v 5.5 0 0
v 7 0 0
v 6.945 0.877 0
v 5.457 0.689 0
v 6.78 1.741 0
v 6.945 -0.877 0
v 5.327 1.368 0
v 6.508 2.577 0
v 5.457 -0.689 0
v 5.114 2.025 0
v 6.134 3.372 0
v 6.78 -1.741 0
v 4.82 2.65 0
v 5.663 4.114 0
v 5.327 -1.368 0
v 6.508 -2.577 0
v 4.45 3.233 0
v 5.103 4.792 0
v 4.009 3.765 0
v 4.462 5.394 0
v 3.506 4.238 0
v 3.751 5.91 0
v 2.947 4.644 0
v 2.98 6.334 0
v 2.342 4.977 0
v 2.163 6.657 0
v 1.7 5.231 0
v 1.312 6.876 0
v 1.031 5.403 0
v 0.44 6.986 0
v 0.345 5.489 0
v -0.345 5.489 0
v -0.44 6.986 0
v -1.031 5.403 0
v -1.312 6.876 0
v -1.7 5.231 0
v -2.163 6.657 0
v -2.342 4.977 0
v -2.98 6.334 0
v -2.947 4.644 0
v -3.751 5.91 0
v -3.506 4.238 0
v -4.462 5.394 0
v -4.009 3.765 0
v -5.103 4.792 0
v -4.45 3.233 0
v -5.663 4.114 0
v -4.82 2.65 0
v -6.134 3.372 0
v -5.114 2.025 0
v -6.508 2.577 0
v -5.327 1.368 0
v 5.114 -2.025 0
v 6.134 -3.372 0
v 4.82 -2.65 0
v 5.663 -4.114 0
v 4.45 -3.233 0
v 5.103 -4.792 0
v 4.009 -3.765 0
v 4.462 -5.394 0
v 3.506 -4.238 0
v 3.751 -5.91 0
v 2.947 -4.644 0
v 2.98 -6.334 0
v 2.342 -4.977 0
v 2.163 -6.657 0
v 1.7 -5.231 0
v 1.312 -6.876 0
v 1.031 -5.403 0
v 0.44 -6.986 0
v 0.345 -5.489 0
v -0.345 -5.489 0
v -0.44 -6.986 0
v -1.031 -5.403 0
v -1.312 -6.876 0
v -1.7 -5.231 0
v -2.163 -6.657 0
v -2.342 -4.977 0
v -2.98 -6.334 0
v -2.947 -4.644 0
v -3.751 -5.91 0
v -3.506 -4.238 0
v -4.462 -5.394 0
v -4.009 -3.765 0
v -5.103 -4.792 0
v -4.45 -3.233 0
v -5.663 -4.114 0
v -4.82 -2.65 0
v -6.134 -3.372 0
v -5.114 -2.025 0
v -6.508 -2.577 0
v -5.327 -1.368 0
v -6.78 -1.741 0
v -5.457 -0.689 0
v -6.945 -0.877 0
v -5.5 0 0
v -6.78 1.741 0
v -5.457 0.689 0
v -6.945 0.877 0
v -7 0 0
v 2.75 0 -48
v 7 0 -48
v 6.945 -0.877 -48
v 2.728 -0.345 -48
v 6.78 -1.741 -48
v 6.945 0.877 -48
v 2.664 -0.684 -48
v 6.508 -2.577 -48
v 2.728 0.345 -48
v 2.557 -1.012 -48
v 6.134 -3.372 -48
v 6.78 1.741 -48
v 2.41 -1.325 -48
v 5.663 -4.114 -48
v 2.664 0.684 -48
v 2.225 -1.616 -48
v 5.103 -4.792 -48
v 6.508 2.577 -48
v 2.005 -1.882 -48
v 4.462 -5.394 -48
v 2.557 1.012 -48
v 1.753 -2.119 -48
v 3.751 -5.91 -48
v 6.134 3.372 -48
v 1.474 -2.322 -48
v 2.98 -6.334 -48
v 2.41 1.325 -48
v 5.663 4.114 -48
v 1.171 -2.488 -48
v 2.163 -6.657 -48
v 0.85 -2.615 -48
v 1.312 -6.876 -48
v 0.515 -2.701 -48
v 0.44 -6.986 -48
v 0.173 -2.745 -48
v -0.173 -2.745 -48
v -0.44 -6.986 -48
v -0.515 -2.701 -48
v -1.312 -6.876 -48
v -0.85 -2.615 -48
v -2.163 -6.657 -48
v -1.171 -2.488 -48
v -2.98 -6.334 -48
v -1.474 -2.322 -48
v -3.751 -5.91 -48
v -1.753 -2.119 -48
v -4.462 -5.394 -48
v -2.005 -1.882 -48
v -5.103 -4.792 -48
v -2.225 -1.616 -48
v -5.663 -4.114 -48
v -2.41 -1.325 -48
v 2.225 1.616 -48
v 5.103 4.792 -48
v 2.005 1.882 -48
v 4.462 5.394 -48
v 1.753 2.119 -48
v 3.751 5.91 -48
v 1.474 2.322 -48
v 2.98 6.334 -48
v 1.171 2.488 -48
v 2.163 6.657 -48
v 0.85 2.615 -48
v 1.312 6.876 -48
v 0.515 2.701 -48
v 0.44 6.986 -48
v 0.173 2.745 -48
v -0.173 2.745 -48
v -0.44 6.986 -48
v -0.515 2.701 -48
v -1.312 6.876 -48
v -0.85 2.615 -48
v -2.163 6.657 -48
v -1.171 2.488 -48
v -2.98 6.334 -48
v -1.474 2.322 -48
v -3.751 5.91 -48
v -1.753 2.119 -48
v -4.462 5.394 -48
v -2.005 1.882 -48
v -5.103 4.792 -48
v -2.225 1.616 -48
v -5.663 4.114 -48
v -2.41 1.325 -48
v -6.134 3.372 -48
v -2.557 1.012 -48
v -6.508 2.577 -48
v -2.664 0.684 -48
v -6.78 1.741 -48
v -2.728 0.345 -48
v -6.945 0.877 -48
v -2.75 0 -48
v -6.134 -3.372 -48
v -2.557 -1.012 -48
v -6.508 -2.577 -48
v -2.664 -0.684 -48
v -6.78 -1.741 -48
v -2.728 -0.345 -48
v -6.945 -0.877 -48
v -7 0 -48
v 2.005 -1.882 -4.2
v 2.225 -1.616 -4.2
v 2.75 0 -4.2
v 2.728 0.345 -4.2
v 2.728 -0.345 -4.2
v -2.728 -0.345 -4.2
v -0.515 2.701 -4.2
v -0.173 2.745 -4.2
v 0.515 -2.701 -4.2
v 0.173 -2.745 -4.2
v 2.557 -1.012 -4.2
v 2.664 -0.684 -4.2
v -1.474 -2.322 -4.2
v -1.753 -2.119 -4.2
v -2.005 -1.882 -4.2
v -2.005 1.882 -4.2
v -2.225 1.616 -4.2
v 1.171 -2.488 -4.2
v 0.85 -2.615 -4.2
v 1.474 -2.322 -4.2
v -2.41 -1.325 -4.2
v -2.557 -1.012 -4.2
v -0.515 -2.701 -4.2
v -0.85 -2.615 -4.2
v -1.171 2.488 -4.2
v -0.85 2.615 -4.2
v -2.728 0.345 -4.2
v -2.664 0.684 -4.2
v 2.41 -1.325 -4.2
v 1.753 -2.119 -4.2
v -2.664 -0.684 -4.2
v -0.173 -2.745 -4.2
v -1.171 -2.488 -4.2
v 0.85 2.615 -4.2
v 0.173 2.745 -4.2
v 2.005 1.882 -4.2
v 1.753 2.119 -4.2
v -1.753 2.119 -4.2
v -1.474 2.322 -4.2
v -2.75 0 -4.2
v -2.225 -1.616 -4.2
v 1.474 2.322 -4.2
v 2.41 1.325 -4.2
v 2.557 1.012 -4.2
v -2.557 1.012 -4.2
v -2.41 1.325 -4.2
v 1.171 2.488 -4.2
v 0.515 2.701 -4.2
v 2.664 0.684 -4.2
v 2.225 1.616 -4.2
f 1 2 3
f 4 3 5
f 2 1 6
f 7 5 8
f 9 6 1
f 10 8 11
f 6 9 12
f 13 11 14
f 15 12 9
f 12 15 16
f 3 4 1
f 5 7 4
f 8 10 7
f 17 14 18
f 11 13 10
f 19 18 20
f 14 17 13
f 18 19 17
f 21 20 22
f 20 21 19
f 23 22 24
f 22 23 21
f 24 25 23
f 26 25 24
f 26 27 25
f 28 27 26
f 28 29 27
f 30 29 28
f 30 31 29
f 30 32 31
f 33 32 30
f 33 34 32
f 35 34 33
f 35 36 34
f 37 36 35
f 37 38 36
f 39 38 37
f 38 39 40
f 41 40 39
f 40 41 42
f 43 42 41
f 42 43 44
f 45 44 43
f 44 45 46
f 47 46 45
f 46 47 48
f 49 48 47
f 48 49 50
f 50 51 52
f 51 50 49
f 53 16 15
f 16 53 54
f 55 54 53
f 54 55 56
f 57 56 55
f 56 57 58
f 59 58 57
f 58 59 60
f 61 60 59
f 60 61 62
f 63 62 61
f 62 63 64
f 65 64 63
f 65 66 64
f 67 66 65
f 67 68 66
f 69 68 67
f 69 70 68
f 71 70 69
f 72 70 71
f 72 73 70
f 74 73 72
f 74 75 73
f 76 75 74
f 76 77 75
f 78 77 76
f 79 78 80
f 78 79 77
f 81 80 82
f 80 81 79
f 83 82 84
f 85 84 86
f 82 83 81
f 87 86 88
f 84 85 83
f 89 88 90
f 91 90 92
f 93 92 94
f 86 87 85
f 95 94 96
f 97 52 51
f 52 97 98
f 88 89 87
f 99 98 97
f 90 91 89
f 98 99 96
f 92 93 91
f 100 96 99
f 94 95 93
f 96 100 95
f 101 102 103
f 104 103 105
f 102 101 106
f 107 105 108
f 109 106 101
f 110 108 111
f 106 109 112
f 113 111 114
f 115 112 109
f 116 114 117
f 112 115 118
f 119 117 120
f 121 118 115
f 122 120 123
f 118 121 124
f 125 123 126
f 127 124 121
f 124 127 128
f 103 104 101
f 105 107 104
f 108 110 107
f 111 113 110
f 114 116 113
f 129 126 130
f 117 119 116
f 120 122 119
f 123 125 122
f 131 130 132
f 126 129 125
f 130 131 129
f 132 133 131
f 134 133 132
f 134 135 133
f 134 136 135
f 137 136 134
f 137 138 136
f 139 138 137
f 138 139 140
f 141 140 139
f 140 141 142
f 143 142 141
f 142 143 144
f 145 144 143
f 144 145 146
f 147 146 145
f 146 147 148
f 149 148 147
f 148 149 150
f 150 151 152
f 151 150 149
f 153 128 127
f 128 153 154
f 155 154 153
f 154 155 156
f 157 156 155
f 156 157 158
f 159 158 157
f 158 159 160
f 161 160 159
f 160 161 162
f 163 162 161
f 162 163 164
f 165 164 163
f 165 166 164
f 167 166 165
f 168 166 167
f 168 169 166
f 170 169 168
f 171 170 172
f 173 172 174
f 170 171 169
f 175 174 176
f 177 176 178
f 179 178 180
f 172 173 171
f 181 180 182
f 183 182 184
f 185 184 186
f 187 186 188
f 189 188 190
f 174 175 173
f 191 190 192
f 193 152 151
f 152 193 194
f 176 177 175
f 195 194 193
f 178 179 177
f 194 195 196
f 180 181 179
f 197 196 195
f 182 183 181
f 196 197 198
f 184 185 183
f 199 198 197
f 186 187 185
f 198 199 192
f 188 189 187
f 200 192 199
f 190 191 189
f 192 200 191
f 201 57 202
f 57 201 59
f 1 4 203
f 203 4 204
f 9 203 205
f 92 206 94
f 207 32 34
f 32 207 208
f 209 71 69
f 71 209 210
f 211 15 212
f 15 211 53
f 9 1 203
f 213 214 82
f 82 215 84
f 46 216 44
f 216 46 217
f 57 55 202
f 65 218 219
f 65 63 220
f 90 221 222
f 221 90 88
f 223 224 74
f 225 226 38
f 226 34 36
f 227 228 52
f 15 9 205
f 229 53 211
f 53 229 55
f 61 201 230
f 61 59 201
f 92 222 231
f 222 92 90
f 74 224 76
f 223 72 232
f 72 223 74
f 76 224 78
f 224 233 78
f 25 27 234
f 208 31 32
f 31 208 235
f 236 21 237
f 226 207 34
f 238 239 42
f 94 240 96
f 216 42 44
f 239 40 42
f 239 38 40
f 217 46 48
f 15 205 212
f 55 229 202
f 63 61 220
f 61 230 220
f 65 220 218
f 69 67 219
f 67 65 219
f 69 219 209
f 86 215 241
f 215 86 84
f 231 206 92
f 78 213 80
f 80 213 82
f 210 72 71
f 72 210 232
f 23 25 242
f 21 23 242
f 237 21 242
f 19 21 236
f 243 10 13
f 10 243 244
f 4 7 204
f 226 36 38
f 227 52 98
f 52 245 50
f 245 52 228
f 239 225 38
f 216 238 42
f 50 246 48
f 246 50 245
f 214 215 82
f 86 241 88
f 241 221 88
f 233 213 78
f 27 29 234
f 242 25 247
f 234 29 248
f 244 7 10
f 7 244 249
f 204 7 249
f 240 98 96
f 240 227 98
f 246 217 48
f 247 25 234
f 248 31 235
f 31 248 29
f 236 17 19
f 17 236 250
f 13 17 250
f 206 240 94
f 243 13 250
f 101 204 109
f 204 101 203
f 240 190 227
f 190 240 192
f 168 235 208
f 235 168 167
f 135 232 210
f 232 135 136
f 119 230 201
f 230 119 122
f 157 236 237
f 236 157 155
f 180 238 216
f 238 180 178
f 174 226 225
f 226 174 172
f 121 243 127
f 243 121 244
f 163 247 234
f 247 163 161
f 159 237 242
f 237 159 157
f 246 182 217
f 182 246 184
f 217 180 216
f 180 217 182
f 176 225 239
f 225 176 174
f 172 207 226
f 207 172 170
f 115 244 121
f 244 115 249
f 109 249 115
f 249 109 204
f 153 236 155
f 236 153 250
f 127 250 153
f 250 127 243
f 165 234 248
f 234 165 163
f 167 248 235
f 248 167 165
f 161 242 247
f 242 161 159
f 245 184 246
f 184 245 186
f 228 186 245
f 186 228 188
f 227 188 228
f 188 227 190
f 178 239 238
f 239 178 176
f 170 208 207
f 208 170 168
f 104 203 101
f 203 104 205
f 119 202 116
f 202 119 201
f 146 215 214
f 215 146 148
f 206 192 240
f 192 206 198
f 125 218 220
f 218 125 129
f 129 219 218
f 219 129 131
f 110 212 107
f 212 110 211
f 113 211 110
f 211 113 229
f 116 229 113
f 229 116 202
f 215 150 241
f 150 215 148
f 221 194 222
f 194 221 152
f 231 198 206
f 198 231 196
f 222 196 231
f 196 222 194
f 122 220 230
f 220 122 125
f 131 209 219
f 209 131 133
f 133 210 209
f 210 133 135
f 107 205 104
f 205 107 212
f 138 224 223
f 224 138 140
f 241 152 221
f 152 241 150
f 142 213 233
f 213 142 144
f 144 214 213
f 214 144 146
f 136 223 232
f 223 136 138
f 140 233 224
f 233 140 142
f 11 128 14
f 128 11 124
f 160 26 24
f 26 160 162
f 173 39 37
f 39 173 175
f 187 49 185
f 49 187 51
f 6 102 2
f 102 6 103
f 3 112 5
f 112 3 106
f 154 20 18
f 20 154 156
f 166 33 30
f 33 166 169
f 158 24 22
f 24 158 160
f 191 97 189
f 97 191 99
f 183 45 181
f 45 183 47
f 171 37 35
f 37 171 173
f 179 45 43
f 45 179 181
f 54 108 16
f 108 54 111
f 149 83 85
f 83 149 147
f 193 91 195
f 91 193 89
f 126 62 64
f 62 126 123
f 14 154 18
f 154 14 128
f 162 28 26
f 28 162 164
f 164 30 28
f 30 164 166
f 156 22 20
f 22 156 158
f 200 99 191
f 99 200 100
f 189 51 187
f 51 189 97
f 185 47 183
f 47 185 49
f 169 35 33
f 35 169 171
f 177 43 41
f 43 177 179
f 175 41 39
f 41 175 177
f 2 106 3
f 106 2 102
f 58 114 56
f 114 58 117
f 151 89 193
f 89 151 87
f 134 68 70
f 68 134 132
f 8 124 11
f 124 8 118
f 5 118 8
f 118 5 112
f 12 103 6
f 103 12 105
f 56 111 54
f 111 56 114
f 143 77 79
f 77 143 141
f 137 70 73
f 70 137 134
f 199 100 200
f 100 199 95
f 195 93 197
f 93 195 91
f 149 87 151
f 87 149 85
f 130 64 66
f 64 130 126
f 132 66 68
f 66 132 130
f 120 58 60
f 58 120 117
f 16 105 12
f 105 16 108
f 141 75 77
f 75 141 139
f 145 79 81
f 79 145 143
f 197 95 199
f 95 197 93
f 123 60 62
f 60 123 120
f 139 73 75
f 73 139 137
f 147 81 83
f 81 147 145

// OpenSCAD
$fn = 50;


difference() {
	union() {
		translate(v = [0, 0, -48.0000000000]) {
			cylinder(h = 48, r = 7.0000000000);
		}
	}
	union() {
		translate(v = [0, 0, 0]) {
			rotate(a = [0, 0, 0]) {
				difference() {
					union() {
						#translate(v = [0, 0, -48.0000000000]) {
							cylinder(h = 48, r = 2.2500000000);
						}
						#translate(v = [0, 0, -4.2000000000]) {
							cylinder(h = 4.2000000000, r = 7.0000000000, r1 = 2.7500000000, r2 = 5.5000000000);
						}
						#translate(v = [0, 0, -48.0000000000]) {
							cylinder(h = 48, r = 2.7500000000);
						}
						#translate(v = [0, 0, -48.0000000000]) {
							cylinder(h = 48, r = 2.2500000000);
						}
					}
					union();
				}
			}
		}
	}
}
